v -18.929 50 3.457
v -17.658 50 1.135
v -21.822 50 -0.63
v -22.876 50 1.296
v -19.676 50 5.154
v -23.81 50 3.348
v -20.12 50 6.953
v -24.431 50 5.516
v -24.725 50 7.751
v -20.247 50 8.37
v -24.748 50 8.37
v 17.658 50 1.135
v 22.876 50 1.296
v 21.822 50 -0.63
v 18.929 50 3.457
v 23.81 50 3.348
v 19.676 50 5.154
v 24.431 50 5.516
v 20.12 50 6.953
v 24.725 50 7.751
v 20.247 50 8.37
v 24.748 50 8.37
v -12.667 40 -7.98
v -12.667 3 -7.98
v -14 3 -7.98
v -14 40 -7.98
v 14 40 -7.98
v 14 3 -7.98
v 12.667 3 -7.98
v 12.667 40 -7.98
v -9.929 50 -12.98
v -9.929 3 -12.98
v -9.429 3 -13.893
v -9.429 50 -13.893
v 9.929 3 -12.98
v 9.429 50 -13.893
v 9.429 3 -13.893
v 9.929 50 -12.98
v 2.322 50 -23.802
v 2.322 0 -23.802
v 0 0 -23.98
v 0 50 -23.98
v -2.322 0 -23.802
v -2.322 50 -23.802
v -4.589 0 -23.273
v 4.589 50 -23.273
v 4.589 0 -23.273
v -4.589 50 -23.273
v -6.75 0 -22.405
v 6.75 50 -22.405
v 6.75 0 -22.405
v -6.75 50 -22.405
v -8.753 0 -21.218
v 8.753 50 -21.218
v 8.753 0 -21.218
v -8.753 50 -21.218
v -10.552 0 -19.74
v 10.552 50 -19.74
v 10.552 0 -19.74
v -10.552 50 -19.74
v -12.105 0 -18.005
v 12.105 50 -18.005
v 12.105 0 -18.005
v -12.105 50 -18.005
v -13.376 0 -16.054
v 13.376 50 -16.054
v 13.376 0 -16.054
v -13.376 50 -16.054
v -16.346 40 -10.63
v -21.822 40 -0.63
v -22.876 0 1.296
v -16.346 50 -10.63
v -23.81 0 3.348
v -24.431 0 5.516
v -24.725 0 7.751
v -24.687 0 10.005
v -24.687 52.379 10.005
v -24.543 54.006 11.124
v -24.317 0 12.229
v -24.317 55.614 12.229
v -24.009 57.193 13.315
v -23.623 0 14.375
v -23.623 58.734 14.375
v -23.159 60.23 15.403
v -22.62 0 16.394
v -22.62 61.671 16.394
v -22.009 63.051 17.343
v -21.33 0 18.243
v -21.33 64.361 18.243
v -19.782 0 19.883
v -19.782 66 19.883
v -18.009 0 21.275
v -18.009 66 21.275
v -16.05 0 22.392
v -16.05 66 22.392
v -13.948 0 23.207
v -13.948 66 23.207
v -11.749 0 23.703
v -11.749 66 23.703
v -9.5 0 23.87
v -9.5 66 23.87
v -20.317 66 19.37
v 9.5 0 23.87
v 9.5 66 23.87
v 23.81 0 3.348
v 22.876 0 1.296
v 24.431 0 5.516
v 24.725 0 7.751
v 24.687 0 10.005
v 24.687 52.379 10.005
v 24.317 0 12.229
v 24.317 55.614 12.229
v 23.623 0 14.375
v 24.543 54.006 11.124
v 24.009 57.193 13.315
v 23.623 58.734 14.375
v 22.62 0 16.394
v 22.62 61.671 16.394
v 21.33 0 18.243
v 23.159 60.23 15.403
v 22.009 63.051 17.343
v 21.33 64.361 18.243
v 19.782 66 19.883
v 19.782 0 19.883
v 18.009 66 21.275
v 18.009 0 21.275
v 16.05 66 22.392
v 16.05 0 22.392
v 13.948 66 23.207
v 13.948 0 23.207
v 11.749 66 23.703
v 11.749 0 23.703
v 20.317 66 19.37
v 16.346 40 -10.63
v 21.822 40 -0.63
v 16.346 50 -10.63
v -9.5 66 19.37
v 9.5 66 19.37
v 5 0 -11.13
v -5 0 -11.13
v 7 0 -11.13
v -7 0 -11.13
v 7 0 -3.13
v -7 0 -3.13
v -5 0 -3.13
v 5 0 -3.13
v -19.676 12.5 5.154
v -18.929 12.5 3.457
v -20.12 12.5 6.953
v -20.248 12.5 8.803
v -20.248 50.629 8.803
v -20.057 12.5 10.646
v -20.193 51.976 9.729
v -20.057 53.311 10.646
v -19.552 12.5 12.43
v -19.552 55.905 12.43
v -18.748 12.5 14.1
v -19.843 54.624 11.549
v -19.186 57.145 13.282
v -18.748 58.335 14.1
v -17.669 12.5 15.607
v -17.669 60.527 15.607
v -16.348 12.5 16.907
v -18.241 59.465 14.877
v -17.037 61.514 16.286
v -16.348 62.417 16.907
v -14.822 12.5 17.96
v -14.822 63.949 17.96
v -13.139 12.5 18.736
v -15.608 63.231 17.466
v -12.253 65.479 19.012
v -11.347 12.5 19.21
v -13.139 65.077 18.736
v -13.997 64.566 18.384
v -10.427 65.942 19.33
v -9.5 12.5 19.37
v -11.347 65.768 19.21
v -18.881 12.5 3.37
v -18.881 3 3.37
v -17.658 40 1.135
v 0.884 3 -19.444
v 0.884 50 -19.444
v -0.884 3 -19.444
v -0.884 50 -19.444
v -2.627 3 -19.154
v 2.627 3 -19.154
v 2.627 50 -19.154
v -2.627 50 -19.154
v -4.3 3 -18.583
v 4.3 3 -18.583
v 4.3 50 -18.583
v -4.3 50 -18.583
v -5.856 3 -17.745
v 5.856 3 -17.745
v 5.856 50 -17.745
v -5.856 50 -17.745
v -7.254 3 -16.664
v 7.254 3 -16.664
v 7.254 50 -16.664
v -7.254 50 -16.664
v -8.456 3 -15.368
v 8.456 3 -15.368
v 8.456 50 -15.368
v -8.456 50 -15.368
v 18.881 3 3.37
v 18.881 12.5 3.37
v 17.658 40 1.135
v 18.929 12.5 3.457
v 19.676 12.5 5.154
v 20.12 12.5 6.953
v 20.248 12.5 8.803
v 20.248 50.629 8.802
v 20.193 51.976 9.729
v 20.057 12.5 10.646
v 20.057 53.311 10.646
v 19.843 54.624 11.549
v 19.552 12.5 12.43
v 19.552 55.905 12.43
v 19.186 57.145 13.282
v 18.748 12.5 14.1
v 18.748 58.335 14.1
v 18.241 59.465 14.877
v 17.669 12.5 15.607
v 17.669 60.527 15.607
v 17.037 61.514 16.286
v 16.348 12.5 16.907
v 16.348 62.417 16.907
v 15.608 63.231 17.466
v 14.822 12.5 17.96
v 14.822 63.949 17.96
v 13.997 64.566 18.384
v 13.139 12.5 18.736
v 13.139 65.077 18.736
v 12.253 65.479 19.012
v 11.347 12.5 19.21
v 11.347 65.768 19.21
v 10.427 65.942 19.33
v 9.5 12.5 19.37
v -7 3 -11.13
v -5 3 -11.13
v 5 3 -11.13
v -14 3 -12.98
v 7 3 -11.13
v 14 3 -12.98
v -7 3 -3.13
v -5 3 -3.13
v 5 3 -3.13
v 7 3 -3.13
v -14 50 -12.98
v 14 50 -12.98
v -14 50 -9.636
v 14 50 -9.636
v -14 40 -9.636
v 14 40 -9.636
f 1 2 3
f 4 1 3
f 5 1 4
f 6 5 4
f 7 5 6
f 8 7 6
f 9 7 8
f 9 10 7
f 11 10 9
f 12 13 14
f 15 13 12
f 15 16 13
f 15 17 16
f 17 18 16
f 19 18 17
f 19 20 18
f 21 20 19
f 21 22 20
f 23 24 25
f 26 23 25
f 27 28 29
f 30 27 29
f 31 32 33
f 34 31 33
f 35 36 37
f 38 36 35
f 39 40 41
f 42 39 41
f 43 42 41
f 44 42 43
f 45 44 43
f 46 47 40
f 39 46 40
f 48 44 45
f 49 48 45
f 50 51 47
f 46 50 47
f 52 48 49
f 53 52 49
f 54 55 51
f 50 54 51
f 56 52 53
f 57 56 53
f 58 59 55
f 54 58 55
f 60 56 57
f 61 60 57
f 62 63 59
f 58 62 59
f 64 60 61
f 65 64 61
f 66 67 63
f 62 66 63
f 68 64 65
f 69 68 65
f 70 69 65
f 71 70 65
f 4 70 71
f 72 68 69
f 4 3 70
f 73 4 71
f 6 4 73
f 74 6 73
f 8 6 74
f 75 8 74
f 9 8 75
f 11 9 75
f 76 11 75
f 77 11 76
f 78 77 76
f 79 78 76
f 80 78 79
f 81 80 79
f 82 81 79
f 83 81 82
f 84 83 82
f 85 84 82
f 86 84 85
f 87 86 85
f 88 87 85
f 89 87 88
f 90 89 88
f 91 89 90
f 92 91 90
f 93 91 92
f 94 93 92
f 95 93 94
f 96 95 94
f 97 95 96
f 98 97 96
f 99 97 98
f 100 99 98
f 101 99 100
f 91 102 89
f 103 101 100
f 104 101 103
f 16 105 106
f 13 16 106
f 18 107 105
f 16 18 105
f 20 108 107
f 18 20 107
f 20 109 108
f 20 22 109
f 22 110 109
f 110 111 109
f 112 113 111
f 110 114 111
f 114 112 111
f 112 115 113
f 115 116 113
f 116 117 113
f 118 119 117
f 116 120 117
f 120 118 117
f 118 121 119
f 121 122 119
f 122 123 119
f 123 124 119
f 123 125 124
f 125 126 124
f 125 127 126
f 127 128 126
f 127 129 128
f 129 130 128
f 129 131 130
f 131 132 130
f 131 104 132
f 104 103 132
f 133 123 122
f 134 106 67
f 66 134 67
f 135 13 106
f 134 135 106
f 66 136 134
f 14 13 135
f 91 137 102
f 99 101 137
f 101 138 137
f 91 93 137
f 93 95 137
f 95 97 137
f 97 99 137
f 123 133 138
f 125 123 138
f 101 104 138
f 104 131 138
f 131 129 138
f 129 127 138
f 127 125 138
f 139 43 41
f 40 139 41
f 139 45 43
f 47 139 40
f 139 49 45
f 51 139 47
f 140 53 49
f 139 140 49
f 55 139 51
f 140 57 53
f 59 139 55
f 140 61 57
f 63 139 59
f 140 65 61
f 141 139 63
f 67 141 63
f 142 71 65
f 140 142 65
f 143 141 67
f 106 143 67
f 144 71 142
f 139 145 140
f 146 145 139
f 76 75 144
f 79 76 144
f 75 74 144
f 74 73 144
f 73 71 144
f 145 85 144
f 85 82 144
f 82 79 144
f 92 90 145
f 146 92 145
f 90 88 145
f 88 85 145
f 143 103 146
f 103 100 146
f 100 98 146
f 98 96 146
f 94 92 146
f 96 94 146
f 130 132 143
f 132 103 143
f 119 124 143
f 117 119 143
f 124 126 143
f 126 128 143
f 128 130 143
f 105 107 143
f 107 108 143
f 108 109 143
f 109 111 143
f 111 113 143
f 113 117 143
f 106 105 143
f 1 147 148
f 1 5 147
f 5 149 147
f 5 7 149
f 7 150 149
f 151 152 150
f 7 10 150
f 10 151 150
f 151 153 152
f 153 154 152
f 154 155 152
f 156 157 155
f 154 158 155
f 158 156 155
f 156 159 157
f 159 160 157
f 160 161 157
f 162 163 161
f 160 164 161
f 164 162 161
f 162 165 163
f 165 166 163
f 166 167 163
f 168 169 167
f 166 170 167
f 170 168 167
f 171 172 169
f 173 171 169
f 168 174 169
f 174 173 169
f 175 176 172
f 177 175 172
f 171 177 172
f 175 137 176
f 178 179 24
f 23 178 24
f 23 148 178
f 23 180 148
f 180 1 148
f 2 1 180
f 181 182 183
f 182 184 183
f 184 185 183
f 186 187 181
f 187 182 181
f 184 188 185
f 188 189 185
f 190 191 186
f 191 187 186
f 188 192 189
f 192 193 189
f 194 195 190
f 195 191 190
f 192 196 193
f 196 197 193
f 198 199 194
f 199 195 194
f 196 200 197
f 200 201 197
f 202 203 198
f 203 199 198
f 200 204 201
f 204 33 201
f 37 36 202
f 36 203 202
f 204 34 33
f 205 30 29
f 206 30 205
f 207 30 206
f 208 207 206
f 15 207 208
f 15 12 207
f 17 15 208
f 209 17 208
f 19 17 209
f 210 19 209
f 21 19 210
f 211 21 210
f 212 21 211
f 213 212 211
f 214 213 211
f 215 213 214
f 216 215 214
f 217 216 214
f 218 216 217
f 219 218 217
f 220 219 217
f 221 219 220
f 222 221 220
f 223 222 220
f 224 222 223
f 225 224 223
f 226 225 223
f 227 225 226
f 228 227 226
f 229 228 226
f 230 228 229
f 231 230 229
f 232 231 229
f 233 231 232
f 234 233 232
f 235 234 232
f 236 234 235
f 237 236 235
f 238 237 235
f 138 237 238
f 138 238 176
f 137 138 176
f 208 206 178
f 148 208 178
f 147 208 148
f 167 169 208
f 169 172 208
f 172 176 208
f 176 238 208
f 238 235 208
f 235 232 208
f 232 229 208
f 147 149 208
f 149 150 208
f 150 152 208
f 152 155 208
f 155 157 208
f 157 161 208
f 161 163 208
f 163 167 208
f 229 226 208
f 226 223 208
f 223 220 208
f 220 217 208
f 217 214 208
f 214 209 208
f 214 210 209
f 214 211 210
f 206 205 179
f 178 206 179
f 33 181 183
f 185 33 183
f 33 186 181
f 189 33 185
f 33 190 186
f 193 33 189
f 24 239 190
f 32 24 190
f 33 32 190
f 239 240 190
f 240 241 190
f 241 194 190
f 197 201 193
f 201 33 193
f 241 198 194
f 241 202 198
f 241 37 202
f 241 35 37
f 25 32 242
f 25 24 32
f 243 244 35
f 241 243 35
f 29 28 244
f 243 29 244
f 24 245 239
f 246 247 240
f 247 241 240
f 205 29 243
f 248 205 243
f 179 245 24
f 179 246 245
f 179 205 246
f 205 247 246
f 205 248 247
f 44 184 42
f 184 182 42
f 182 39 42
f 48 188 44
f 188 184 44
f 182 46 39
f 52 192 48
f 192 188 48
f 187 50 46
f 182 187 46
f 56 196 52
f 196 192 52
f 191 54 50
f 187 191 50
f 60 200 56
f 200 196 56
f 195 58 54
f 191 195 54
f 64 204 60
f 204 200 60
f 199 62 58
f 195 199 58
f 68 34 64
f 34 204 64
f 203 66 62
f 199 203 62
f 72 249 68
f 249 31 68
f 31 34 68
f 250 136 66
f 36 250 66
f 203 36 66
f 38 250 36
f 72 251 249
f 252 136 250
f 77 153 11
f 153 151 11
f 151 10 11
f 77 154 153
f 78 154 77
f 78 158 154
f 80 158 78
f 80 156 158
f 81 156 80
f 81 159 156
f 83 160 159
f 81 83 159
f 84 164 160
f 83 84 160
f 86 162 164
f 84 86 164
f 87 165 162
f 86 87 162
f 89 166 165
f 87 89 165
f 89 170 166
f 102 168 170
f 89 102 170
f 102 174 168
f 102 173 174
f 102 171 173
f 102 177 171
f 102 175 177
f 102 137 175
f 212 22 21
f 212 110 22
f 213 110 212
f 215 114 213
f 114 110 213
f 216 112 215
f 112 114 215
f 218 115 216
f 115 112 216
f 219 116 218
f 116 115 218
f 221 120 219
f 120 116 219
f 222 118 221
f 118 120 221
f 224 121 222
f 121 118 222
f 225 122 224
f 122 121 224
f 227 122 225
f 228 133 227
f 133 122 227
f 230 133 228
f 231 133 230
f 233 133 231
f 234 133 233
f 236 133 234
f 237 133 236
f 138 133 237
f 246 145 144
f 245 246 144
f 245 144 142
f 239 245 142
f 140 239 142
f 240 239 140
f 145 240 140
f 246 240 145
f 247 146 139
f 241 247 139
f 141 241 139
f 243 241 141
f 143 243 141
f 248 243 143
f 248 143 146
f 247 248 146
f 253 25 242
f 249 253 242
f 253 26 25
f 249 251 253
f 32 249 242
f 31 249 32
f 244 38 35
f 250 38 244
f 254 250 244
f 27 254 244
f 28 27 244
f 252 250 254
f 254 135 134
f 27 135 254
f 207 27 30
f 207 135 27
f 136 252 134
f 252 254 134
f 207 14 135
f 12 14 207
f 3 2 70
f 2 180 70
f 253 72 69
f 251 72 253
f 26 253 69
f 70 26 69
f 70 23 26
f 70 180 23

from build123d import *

# Parameters (mm, degrees)
RESSALTO_EXTRUS_O1_DEPTH   = 66
CORTE_EXTRUS_O1_DEPTH      = 53.5
CORTE_EXTRUS_O2_DEPTH      = 63
CORTE_EXTRUS_O3_DEPTH      = 75.455375226
CORTE_EXTRUS_O3_DEPTH_BACK = 75.455375226
CORTE_EXTRUS_O4_DEPTH      = 61.725636267
CORTE_EXTRUS_O4_DEPTH_BACK = 61.725636267
ESBO_O5_W                  = 2
ESBO_O5_H                  = 8
CORTE_EXTRUS_O5_DEPTH      = 47
CORTE_EXTRUS_O7_DEPTH      = 10


with BuildPart() as part:
    # Esboço1 → Ressalto-extrusão1 (new body)
    with BuildSketch(Plane(origin=(0, 0, 0), x_dir=(1, 0, 0), z_dir=(0, 1, 0))):
        with BuildLine():
            Line((-13.376104721, 16.054091922), (-22.876104721, -1.295908078))
            ThreePointArc((-22.876104721, -1.295908078), (-22.619735169, -16.393998269), (-9.5, -23.87))
            Line((-9.5, -23.87), (9.5, -23.87))
            ThreePointArc((9.5, -23.87), (22.619735169, -16.393998269), (22.876104721, -1.295908078))
            Line((22.876104721, -1.295908078), (13.376104721, 16.054091922))
            ThreePointArc((13.376104721, 16.054091922), (0, 23.98), (-13.376104721, 16.054091922))
        make_face()
    extrude(amount=RESSALTO_EXTRUS_O1_DEPTH)

    # Esboço2 → Corte-extrusão1 (cut)
    with BuildSketch(Plane(origin=(0, 66, 0), x_dir=(1, 0, 0), z_dir=(0, 1, 0))):
        with BuildLine():
            Line((-18.929057426, -3.45711553), (-9.429057426, 13.89288447))
            ThreePointArc((-9.429057426, 13.89288447), (0, 19.48), (9.429057426, 13.89288447))
            Line((9.429057426, 13.89288447), (18.929057426, -3.45711553))
            ThreePointArc((18.929057426, -3.45711553), (18.748337906, -14.100031567), (9.5, -19.37))
            Line((9.5, -19.37), (-9.5, -19.37))
            ThreePointArc((-9.5, -19.37), (-18.748337906, -14.100031567), (-18.929057426, -3.45711553))
        make_face()
    extrude(amount=-CORTE_EXTRUS_O1_DEPTH, mode=Mode.SUBTRACT)

    # Esboço3 → Corte-extrusão2 (cut)
    with BuildSketch(Plane(origin=(0, 66, 0), x_dir=(1, 0, 0), z_dir=(0, 1, 0))):
        with BuildLine():
            Line((0, -3.37), (18.88135728, -3.37))
            Line((18.88135728, -3.37), (9.429057426, 13.89288447))
            ThreePointArc((9.429057426, 13.89288447), (0, 19.48), (-9.429057426, 13.89288447))
            Line((-9.429057426, 13.89288447), (-18.88135728, -3.37))
            Line((-18.88135728, -3.37), (0, -3.37))
        make_face()
    extrude(amount=-CORTE_EXTRUS_O2_DEPTH, mode=Mode.SUBTRACT)

    # Esboço4 → Corte-extrusão3 (cut, two sides: drawn at the far end of the back side and taken through both)
    with BuildSketch(Plane(origin=(0, 0, 0), x_dir=(0, 0, -1), z_dir=(1, 0, 0)).offset(-CORTE_EXTRUS_O3_DEPTH_BACK)):
        Polygon((-8.37, 50), (35.337515561, 50), (33.498972566, 68.632714226), (-19.37, 68.632714226), (-19.37, 66), align=None)
    extrude(amount=CORTE_EXTRUS_O3_DEPTH + CORTE_EXTRUS_O3_DEPTH_BACK, mode=Mode.SUBTRACT)

    # Esboço5 → Corte-extrusão4 (cut, two sides: drawn at the far end of the back side and taken through both)
    with BuildSketch(Plane(origin=(0, 50, 0), x_dir=(1, 0, 0), z_dir=(0, 1, 0)).offset(-CORTE_EXTRUS_O4_DEPTH_BACK)):
        with Locations((6, 7.13)):
            Rectangle(ESBO_O5_W, ESBO_O5_H)
        with Locations((-6, 7.13)):
            Rectangle(ESBO_O5_W, ESBO_O5_H)
    extrude(amount=CORTE_EXTRUS_O4_DEPTH + CORTE_EXTRUS_O4_DEPTH_BACK, mode=Mode.SUBTRACT)

    # Esboço6 → Corte-extrusão5 (cut)
    with BuildSketch(Plane(origin=(0, 50, 0), x_dir=(1, 0, 0), z_dir=(0, 1, 0))):
        Polygon((0, 12.98), (14, 12.98), (14, 7.98), (-14, 7.98), (-14, 12.98), align=None)
    extrude(amount=-CORTE_EXTRUS_O5_DEPTH, mode=Mode.SUBTRACT)

    # Esboço7 → Corte-extrusão7 (cut)
    with BuildSketch(Plane(origin=(0, 50, 0), x_dir=(1, 0, 0), z_dir=(0, 1, 0))):
        Polygon((0, 3.70102494), (16.346068598, 10.63), (21.821572921, 0.63), (0, -8.62), (-21.821572921, 0.63), (-16.346068598, 10.63), align=None)
    extrude(amount=-CORTE_EXTRUS_O7_DEPTH, mode=Mode.SUBTRACT)


solid = part.part
